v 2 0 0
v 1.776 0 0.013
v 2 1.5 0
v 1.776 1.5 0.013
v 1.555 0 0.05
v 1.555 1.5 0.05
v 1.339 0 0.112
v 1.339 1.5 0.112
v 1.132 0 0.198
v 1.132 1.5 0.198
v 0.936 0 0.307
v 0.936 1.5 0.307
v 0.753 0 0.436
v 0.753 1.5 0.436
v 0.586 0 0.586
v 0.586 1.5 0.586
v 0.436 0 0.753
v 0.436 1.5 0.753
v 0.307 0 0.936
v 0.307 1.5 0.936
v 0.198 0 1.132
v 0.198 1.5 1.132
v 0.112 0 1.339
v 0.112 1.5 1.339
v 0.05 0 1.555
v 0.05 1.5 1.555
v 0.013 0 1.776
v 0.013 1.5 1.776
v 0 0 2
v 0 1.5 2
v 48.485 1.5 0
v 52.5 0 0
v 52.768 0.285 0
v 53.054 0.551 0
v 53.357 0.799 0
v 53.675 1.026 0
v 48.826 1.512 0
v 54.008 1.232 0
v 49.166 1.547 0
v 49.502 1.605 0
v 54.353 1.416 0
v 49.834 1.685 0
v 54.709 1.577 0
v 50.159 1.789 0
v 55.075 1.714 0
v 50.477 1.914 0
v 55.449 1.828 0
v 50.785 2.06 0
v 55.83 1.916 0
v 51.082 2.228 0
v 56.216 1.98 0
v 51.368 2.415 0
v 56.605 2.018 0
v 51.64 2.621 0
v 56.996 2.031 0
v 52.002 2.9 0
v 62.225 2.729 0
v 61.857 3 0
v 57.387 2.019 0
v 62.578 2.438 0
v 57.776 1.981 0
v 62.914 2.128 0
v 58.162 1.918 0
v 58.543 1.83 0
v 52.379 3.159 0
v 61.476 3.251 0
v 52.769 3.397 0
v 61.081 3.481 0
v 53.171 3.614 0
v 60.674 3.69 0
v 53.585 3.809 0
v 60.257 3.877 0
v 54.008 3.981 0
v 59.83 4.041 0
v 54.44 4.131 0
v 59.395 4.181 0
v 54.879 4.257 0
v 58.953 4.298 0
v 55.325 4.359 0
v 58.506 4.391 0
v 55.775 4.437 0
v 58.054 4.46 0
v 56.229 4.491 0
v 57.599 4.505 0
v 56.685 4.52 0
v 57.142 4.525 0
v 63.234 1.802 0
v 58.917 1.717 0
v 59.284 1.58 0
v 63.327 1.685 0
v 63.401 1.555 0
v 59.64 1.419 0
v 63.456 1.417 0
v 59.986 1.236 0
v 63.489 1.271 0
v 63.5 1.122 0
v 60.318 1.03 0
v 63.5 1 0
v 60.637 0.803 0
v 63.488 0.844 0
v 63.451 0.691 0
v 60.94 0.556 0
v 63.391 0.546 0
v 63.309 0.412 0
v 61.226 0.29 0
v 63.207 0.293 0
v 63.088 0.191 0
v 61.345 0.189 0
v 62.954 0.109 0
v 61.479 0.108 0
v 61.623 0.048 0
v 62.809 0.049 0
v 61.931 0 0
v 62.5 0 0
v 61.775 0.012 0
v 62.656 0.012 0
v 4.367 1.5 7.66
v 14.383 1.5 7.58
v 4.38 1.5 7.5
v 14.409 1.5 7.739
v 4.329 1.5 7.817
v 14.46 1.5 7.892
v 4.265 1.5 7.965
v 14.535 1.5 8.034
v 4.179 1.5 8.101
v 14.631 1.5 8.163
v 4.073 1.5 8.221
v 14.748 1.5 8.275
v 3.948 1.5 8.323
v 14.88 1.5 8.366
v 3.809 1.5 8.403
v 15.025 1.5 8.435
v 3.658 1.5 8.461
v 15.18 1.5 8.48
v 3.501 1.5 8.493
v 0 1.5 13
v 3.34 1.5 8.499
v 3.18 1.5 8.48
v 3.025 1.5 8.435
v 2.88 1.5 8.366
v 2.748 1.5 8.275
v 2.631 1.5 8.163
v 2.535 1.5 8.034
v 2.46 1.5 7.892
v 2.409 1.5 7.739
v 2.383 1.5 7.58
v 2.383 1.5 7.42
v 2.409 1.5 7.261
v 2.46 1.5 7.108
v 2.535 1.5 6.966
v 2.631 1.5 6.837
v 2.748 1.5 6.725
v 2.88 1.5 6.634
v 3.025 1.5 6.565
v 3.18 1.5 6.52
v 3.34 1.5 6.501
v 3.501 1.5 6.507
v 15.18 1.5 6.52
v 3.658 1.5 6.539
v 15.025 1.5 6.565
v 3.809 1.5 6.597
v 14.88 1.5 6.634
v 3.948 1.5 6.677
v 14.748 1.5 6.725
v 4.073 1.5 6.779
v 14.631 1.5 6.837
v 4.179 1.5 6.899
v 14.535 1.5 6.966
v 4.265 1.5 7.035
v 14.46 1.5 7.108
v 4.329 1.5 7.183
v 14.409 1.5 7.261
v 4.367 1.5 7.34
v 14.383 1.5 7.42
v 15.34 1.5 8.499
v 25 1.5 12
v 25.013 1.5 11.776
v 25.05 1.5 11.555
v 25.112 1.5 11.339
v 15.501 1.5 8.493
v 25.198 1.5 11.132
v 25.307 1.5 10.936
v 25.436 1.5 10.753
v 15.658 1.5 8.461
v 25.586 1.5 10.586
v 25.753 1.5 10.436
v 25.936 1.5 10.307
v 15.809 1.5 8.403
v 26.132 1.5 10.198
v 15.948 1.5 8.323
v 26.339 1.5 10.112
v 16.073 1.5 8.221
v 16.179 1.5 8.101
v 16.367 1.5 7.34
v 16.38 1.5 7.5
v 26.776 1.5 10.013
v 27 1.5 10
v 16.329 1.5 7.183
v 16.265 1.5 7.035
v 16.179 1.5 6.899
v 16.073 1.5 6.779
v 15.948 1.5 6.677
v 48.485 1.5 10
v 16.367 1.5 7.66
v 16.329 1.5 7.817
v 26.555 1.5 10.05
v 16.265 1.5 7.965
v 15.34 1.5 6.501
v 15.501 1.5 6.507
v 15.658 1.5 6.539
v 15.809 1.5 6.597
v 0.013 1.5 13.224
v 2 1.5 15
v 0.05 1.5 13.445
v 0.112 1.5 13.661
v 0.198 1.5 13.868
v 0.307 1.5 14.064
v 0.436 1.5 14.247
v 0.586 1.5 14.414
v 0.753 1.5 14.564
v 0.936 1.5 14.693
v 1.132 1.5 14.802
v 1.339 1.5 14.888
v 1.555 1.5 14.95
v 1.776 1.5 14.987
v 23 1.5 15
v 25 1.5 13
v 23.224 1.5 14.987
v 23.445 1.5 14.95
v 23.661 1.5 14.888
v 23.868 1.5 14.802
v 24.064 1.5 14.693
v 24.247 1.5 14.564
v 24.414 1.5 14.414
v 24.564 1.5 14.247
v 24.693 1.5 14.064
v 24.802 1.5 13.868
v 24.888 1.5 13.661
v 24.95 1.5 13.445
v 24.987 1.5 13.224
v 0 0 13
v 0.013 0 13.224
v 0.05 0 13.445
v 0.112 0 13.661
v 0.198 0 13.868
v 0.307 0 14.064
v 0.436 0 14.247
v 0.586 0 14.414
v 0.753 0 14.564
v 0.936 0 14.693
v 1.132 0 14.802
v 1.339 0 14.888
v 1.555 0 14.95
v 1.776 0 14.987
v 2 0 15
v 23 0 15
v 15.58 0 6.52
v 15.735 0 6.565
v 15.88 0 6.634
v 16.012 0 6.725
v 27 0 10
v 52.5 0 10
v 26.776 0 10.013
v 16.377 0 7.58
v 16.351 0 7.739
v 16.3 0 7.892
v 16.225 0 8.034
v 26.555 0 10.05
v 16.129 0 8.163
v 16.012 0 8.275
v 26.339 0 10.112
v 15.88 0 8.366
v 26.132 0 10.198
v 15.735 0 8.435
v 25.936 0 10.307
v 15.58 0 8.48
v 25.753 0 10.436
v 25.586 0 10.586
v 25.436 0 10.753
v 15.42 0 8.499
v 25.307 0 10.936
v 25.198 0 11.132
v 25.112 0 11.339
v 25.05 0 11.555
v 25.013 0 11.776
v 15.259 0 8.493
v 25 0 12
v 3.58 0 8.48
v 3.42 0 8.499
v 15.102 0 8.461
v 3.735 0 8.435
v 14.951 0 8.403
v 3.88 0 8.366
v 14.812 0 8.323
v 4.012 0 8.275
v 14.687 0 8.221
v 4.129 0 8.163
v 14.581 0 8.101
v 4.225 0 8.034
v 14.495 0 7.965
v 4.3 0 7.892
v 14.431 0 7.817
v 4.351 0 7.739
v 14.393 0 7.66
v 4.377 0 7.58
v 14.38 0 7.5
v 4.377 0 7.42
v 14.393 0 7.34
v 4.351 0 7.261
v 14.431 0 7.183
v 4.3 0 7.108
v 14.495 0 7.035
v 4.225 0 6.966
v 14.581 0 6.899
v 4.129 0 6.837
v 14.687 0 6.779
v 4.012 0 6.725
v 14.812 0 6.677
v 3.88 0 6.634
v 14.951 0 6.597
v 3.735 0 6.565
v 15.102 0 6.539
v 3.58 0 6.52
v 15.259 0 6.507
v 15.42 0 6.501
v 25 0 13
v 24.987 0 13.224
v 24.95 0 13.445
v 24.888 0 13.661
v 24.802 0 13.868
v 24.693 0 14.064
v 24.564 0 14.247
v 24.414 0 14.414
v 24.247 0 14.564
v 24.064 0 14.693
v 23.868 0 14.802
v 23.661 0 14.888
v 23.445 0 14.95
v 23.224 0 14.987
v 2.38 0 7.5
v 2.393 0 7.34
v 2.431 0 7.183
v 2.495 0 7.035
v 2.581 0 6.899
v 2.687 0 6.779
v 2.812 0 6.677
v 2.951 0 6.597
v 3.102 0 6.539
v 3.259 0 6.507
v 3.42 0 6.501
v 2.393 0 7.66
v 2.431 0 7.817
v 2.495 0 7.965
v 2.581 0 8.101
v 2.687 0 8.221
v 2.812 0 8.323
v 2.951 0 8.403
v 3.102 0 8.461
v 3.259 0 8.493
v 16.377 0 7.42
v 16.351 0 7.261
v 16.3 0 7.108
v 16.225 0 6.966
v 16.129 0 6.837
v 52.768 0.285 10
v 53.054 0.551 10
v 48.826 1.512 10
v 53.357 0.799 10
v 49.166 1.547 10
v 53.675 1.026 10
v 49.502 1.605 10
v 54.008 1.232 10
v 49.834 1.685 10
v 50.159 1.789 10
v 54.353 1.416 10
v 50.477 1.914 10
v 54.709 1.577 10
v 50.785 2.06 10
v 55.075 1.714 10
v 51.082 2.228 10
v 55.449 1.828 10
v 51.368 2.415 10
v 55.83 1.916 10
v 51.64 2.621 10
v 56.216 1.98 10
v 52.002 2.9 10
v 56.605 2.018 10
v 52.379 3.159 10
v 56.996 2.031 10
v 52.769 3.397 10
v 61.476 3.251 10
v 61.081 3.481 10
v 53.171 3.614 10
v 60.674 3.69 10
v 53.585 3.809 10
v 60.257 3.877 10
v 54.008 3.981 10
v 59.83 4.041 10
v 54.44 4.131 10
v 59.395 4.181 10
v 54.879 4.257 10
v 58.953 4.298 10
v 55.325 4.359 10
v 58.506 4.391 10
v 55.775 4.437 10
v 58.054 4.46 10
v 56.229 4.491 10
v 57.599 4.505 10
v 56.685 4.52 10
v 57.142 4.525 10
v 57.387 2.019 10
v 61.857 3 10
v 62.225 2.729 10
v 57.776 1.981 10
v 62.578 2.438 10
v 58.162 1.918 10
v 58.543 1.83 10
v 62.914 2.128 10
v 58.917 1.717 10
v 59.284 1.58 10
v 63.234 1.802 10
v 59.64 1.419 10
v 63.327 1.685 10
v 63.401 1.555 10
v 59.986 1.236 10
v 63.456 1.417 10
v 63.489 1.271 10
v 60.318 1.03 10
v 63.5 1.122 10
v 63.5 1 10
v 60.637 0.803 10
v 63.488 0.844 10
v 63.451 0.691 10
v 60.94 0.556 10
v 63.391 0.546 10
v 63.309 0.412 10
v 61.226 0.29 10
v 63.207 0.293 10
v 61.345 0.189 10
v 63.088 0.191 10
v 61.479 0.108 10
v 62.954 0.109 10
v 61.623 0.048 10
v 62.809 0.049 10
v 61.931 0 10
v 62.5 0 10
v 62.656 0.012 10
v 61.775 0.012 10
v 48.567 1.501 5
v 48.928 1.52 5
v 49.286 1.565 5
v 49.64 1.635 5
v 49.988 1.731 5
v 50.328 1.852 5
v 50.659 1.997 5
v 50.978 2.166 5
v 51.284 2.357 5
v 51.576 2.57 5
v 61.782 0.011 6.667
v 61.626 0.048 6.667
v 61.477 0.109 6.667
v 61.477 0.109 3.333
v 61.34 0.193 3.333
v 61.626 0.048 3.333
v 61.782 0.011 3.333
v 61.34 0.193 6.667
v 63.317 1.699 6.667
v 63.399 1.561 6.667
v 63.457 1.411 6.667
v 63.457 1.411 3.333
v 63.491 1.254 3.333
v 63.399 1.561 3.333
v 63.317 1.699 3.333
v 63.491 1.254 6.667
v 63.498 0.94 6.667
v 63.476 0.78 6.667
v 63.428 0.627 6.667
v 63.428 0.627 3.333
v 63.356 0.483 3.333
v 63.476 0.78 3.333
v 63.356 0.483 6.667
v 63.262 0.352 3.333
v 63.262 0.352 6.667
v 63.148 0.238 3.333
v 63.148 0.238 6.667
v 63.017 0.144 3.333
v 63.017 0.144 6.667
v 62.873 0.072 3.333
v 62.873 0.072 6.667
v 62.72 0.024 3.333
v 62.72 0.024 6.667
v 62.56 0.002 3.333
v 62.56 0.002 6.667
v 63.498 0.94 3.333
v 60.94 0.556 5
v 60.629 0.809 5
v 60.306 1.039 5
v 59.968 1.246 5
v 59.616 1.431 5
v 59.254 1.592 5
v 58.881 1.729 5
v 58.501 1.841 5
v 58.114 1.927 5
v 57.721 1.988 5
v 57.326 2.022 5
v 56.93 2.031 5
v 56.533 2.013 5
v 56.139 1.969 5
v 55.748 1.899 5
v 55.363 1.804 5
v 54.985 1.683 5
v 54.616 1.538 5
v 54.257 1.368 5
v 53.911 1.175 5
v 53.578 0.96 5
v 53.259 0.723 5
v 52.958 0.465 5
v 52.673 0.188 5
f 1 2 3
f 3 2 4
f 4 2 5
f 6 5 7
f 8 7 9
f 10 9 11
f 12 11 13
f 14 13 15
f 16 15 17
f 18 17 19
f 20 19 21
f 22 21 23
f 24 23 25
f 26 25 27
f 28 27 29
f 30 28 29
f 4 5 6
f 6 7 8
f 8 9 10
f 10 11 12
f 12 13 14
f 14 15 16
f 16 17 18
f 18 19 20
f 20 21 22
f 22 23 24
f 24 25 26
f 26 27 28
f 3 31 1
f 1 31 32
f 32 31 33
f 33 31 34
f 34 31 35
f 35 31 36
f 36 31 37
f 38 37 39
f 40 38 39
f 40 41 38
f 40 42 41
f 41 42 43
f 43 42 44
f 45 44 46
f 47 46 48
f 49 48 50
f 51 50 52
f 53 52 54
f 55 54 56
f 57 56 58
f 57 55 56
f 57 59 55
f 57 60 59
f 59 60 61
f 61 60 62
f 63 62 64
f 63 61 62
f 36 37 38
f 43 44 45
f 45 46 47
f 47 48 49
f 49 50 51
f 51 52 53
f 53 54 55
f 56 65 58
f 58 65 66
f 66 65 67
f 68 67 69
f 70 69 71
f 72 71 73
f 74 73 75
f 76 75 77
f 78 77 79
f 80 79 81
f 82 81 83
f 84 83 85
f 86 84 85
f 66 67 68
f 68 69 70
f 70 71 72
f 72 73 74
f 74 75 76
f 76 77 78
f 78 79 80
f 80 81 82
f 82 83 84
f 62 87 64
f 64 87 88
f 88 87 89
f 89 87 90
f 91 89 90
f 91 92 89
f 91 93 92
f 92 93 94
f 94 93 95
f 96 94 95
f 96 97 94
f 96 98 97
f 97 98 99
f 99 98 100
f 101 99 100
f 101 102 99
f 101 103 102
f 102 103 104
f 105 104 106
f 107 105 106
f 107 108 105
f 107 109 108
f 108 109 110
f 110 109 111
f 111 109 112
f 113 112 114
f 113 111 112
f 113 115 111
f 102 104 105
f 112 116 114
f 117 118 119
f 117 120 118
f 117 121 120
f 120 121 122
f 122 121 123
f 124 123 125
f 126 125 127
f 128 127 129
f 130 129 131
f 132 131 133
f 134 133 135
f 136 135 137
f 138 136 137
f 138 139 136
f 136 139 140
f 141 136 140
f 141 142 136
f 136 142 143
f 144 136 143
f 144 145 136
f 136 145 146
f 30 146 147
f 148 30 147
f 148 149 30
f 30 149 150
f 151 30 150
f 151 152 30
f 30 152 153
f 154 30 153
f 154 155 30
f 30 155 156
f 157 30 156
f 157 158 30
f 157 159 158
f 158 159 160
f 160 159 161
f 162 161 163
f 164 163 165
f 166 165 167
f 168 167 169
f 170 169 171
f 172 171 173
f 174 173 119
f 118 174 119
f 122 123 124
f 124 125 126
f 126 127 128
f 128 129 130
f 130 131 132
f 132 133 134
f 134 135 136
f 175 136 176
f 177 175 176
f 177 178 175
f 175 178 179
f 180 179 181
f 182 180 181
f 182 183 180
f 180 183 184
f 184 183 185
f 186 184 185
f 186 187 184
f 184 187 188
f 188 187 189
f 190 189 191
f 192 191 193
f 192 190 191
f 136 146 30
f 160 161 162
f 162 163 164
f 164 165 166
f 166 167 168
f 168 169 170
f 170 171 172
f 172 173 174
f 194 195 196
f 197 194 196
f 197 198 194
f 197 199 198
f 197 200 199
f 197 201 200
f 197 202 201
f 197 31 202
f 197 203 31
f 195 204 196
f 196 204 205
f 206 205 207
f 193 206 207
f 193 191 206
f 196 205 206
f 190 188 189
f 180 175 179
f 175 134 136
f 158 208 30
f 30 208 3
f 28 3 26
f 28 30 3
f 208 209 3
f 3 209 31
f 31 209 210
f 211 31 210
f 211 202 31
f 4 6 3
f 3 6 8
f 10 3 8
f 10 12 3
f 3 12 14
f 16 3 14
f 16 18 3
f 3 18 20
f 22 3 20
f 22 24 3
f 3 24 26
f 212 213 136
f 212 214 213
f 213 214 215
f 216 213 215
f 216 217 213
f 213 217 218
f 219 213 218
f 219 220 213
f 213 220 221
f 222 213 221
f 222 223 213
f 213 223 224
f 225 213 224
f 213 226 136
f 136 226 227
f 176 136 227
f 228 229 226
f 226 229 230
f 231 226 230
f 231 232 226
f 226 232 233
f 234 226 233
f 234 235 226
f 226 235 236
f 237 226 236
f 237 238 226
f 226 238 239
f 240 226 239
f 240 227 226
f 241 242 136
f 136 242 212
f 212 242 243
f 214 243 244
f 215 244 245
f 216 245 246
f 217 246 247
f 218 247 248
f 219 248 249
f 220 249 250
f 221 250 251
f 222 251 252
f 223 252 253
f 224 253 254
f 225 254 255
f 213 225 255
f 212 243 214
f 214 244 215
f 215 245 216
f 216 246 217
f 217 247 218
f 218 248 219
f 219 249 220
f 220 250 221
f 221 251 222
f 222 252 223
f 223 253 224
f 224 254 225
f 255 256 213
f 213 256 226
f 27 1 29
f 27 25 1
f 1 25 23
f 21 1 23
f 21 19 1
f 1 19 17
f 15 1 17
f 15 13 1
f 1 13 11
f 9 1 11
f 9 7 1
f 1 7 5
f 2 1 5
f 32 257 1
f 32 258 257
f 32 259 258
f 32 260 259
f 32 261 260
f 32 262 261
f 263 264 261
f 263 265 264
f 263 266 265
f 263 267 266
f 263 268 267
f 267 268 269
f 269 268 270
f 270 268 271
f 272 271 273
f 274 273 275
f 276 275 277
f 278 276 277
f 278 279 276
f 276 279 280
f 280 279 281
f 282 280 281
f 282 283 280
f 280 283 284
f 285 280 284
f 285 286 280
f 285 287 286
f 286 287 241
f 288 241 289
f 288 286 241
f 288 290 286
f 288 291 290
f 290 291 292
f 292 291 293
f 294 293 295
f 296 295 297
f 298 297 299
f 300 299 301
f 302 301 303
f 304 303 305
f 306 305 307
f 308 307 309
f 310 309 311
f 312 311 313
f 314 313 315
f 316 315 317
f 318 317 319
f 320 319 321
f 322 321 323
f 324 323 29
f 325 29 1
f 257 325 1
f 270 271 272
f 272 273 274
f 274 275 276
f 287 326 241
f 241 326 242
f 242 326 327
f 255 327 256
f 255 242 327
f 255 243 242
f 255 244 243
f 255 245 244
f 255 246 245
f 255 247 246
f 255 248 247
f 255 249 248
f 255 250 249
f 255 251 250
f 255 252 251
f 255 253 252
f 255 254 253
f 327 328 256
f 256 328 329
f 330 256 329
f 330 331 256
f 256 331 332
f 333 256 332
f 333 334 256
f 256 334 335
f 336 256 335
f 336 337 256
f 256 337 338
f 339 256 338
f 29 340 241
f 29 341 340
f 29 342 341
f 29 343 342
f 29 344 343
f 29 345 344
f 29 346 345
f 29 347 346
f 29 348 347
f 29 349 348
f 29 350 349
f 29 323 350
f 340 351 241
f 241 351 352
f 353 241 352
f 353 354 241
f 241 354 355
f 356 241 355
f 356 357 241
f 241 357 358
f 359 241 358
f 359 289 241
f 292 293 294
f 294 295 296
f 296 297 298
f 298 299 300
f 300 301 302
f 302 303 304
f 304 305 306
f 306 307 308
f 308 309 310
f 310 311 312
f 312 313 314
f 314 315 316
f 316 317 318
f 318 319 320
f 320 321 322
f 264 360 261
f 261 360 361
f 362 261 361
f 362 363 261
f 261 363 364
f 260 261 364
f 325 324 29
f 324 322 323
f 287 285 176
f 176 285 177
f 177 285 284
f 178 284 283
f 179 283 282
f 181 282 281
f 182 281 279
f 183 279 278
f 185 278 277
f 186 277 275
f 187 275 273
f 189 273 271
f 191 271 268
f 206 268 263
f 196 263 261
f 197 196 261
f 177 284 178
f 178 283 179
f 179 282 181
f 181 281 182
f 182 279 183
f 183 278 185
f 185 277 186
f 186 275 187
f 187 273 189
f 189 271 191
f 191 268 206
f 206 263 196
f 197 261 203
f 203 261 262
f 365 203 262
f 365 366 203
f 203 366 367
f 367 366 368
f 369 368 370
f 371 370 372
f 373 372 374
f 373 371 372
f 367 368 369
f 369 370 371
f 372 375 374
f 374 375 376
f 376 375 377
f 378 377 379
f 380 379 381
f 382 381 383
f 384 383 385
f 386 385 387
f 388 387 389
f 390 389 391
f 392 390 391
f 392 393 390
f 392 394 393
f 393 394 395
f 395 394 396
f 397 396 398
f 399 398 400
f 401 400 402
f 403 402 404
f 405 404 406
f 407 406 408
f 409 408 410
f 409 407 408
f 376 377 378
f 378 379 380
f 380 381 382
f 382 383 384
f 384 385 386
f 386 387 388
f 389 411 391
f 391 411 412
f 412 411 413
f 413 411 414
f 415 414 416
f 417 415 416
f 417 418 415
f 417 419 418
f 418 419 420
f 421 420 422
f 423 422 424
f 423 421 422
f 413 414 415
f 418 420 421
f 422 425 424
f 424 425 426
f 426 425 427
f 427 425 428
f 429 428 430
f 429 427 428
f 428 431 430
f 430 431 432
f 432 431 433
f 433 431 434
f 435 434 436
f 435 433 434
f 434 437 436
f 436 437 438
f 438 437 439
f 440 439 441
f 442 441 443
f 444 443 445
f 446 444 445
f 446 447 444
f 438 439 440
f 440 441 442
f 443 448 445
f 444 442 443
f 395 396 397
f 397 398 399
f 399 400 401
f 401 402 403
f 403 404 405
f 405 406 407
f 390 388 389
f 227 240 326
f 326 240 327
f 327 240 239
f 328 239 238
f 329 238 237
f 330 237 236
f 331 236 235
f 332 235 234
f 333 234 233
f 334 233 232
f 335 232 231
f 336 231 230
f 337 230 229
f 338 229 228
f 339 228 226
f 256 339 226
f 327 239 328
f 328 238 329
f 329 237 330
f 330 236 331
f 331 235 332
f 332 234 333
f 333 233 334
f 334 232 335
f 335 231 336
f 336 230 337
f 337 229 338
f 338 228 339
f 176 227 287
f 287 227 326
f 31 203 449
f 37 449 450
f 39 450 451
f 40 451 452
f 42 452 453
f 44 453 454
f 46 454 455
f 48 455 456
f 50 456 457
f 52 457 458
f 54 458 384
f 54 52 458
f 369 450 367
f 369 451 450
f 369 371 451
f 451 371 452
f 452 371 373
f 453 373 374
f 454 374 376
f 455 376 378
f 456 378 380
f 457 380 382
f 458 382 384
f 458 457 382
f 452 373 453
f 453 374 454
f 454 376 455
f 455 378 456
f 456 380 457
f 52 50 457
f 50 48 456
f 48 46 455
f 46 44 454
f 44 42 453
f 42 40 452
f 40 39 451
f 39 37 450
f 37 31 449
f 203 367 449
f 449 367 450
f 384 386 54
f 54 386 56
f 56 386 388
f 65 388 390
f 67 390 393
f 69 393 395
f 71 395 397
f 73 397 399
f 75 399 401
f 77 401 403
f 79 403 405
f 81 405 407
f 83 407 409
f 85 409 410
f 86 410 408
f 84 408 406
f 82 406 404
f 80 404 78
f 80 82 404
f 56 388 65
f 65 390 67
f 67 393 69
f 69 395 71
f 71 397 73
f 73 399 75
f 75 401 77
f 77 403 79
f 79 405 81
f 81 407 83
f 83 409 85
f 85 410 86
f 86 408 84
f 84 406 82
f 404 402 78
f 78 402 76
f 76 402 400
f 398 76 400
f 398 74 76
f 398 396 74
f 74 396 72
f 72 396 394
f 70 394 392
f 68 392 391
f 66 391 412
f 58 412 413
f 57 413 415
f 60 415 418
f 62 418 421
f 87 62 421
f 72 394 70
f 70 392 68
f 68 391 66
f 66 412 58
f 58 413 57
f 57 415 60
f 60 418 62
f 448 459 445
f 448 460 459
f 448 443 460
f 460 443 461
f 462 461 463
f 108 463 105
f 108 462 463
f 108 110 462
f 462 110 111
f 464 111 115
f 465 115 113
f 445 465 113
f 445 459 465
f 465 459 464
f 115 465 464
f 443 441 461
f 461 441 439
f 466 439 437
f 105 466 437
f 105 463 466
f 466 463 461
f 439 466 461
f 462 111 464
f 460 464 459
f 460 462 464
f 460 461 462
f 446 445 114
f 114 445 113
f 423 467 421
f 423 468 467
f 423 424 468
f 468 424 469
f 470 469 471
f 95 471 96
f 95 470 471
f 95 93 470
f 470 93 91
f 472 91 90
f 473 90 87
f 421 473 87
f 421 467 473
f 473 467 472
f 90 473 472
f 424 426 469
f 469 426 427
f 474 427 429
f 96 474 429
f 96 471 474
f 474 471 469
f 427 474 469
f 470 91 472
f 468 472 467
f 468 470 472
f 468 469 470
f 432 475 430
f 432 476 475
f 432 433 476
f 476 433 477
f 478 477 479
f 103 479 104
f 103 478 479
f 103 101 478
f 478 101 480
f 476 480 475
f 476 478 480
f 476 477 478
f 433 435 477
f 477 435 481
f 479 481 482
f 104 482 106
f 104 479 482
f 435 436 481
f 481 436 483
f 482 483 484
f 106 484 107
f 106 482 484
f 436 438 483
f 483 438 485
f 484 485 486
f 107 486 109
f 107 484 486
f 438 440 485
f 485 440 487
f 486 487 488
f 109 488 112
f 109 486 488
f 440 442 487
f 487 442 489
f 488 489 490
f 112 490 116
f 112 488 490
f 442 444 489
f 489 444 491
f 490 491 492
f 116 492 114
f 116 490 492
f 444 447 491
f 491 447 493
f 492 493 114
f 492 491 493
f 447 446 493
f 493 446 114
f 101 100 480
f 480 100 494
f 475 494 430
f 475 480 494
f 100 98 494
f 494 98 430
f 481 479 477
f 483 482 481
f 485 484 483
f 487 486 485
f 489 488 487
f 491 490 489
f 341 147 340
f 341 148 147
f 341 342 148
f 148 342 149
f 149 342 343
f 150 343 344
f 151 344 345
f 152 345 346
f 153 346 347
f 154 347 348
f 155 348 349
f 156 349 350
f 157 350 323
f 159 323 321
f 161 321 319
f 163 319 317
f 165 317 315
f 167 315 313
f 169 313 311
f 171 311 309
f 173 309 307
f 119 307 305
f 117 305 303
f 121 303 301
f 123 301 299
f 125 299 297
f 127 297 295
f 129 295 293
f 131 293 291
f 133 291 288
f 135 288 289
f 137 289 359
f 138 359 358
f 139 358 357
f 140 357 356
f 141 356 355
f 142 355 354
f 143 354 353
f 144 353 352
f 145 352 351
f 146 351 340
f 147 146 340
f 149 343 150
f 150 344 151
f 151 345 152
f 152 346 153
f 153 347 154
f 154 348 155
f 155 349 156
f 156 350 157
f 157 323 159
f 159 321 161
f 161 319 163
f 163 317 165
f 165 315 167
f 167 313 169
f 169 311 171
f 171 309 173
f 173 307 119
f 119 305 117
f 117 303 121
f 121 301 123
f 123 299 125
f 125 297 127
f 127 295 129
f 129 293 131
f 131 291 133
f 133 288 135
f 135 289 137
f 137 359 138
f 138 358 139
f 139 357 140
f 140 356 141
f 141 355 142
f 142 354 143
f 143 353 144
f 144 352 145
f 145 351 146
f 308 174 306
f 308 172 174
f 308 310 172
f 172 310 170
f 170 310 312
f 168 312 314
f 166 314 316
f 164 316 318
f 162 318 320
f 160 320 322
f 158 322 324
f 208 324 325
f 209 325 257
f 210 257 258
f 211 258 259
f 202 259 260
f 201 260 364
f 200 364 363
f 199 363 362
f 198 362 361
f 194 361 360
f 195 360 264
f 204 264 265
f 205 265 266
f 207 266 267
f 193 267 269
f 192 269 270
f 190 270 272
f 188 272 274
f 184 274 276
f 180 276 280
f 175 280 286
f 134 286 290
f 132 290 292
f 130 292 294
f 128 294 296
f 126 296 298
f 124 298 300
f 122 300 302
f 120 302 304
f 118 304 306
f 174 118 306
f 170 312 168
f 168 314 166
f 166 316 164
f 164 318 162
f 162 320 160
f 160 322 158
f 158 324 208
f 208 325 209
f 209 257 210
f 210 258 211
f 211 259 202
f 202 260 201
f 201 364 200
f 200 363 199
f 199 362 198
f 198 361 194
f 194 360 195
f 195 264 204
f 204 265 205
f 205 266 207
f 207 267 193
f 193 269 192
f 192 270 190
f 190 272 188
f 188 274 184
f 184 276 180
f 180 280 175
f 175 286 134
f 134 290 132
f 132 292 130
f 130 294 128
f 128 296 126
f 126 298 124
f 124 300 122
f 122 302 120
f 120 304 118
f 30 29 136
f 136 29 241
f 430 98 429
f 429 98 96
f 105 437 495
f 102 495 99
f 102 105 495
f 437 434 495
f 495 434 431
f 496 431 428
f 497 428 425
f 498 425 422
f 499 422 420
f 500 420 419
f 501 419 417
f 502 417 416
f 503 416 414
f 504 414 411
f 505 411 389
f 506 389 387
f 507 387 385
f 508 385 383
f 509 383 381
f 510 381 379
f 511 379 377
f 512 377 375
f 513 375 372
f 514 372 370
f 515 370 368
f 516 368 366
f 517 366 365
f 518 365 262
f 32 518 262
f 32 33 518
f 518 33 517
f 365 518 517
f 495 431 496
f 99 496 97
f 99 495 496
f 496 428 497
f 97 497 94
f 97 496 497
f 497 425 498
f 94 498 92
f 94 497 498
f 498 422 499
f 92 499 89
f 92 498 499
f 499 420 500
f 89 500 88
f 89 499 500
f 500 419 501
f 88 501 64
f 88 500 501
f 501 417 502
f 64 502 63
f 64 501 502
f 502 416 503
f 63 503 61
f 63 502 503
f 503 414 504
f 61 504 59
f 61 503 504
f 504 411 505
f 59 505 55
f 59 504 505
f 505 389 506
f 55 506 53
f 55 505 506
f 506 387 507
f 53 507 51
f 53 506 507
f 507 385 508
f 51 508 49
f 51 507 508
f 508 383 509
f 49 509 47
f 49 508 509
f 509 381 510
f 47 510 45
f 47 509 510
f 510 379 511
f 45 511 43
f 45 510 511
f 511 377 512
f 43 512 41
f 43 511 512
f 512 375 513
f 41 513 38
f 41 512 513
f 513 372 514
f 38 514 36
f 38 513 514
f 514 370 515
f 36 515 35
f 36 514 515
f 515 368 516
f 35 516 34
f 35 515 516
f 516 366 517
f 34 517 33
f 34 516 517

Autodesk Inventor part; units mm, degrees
ref_plane "YZ Plane" through (0, 0, 0) normal (1, 0, 0) x (0, 1, 0)
ref_plane "XZ Plane" through (0, 0, 0) normal (0, 1, 0) x (-1, 0, 0)
ref_plane "XY Plane" through (0, 0, 0) normal (0, 0, 1) x (1, 0, 0)
sketch "Sketch1" plane through (0, 0, 0) normal (0, 0, 1) x (1, 0, 0)
  line L0 (0, 0) -> (52.5, 0)
  line L1 (63.5, 0) -> (63.5, 1.5)
  line L2 (0, 1.5) -> (0, 0)
  arc A0 (63.5, 1.5) -> (50.5, 1.5) centre (57, -3.9686) ccw
  arc A1 (61.5, 0) -> (52.5, 0) centre (57, -3.9686) ccw
  line L3 (61.5, 0) -> (63.5, 0)
  line L4 (52.5, 0) -> (61.5, 0) construction
  line L5 (59.4686, 1.5) -> (54.5314, 1.5) construction
  line L6 (54.5314, 1.5) -> (50.5, 1.5) construction
  line L7 (50.5, 1.5) -> (0, 1.5)
  line L8 (63.5, 1.5) -> (59.4686, 1.5) construction
  dimension "d0" = 63.5
  dimension "d1" = 1.5
  dimension "d3" = 9
  dimension "d4" = 6
  dimension "d5" = 2
extrude "Extrusion1" add sketch "Sketch1" along normal blind 15
sketch "Sketch2" plane through (0, 1.5, 0) normal (0, 1, 0) x (1, 0, 0)
  line L0 (50.5, 0) -> (0, 0) projected
  line L1 (0, 0) -> (0, -15) projected
  line L2 (50.5, -15) -> (0, -15) projected
  line L3 (3.38, 0) -> (3.38, -15) construction
  line L4 (3.38, -7.5) -> (15.38, -7.5) construction
  dimension "d9" = 3.38
  dimension "d10" = 12
hole "Hole1" at (3.38, 1.5, 7.5) at (15.38, 1.5, 7.5) direction (0, -1, 0) diameter 2 end through all
fillet "Fillet1" radius 1 3 edges at (63.5, 0, 7.5) (63.5, 1.5, 7.5) (61.5, 0, 7.5)
fillet "Fillet2" radius 5 1 edges at (50.5, 1.5, 7.5)
sketch "Sketch3" plane through (0, 0, 0) normal (0, -1, 0) x (1, 0, 0)
  line L0 (0, 15) -> (52.5, 15) projected
  line L1 (0, 0) -> (0, 15) projected
  line L2 (25, 20.9607) -> (67.8053, 20.9607)
  line L3 (67.8053, 20.9607) -> (67.8053, 10)
  line L4 (67.8053, 10) -> (25, 10)
  line L5 (25, 10) -> (25, 20.9607)
  dimension "d20" = 5
  dimension "d21" = 25
extrude "Extrusion2" cut sketch "Sketch3" against normal blind 8
fillet "Fillet3" radius 2 4 edges at (25, 0.75, 15) (25, 0.75, 10) (0, 0.75, 15) (0, 0.75, 0)
properties part number "hand2"
